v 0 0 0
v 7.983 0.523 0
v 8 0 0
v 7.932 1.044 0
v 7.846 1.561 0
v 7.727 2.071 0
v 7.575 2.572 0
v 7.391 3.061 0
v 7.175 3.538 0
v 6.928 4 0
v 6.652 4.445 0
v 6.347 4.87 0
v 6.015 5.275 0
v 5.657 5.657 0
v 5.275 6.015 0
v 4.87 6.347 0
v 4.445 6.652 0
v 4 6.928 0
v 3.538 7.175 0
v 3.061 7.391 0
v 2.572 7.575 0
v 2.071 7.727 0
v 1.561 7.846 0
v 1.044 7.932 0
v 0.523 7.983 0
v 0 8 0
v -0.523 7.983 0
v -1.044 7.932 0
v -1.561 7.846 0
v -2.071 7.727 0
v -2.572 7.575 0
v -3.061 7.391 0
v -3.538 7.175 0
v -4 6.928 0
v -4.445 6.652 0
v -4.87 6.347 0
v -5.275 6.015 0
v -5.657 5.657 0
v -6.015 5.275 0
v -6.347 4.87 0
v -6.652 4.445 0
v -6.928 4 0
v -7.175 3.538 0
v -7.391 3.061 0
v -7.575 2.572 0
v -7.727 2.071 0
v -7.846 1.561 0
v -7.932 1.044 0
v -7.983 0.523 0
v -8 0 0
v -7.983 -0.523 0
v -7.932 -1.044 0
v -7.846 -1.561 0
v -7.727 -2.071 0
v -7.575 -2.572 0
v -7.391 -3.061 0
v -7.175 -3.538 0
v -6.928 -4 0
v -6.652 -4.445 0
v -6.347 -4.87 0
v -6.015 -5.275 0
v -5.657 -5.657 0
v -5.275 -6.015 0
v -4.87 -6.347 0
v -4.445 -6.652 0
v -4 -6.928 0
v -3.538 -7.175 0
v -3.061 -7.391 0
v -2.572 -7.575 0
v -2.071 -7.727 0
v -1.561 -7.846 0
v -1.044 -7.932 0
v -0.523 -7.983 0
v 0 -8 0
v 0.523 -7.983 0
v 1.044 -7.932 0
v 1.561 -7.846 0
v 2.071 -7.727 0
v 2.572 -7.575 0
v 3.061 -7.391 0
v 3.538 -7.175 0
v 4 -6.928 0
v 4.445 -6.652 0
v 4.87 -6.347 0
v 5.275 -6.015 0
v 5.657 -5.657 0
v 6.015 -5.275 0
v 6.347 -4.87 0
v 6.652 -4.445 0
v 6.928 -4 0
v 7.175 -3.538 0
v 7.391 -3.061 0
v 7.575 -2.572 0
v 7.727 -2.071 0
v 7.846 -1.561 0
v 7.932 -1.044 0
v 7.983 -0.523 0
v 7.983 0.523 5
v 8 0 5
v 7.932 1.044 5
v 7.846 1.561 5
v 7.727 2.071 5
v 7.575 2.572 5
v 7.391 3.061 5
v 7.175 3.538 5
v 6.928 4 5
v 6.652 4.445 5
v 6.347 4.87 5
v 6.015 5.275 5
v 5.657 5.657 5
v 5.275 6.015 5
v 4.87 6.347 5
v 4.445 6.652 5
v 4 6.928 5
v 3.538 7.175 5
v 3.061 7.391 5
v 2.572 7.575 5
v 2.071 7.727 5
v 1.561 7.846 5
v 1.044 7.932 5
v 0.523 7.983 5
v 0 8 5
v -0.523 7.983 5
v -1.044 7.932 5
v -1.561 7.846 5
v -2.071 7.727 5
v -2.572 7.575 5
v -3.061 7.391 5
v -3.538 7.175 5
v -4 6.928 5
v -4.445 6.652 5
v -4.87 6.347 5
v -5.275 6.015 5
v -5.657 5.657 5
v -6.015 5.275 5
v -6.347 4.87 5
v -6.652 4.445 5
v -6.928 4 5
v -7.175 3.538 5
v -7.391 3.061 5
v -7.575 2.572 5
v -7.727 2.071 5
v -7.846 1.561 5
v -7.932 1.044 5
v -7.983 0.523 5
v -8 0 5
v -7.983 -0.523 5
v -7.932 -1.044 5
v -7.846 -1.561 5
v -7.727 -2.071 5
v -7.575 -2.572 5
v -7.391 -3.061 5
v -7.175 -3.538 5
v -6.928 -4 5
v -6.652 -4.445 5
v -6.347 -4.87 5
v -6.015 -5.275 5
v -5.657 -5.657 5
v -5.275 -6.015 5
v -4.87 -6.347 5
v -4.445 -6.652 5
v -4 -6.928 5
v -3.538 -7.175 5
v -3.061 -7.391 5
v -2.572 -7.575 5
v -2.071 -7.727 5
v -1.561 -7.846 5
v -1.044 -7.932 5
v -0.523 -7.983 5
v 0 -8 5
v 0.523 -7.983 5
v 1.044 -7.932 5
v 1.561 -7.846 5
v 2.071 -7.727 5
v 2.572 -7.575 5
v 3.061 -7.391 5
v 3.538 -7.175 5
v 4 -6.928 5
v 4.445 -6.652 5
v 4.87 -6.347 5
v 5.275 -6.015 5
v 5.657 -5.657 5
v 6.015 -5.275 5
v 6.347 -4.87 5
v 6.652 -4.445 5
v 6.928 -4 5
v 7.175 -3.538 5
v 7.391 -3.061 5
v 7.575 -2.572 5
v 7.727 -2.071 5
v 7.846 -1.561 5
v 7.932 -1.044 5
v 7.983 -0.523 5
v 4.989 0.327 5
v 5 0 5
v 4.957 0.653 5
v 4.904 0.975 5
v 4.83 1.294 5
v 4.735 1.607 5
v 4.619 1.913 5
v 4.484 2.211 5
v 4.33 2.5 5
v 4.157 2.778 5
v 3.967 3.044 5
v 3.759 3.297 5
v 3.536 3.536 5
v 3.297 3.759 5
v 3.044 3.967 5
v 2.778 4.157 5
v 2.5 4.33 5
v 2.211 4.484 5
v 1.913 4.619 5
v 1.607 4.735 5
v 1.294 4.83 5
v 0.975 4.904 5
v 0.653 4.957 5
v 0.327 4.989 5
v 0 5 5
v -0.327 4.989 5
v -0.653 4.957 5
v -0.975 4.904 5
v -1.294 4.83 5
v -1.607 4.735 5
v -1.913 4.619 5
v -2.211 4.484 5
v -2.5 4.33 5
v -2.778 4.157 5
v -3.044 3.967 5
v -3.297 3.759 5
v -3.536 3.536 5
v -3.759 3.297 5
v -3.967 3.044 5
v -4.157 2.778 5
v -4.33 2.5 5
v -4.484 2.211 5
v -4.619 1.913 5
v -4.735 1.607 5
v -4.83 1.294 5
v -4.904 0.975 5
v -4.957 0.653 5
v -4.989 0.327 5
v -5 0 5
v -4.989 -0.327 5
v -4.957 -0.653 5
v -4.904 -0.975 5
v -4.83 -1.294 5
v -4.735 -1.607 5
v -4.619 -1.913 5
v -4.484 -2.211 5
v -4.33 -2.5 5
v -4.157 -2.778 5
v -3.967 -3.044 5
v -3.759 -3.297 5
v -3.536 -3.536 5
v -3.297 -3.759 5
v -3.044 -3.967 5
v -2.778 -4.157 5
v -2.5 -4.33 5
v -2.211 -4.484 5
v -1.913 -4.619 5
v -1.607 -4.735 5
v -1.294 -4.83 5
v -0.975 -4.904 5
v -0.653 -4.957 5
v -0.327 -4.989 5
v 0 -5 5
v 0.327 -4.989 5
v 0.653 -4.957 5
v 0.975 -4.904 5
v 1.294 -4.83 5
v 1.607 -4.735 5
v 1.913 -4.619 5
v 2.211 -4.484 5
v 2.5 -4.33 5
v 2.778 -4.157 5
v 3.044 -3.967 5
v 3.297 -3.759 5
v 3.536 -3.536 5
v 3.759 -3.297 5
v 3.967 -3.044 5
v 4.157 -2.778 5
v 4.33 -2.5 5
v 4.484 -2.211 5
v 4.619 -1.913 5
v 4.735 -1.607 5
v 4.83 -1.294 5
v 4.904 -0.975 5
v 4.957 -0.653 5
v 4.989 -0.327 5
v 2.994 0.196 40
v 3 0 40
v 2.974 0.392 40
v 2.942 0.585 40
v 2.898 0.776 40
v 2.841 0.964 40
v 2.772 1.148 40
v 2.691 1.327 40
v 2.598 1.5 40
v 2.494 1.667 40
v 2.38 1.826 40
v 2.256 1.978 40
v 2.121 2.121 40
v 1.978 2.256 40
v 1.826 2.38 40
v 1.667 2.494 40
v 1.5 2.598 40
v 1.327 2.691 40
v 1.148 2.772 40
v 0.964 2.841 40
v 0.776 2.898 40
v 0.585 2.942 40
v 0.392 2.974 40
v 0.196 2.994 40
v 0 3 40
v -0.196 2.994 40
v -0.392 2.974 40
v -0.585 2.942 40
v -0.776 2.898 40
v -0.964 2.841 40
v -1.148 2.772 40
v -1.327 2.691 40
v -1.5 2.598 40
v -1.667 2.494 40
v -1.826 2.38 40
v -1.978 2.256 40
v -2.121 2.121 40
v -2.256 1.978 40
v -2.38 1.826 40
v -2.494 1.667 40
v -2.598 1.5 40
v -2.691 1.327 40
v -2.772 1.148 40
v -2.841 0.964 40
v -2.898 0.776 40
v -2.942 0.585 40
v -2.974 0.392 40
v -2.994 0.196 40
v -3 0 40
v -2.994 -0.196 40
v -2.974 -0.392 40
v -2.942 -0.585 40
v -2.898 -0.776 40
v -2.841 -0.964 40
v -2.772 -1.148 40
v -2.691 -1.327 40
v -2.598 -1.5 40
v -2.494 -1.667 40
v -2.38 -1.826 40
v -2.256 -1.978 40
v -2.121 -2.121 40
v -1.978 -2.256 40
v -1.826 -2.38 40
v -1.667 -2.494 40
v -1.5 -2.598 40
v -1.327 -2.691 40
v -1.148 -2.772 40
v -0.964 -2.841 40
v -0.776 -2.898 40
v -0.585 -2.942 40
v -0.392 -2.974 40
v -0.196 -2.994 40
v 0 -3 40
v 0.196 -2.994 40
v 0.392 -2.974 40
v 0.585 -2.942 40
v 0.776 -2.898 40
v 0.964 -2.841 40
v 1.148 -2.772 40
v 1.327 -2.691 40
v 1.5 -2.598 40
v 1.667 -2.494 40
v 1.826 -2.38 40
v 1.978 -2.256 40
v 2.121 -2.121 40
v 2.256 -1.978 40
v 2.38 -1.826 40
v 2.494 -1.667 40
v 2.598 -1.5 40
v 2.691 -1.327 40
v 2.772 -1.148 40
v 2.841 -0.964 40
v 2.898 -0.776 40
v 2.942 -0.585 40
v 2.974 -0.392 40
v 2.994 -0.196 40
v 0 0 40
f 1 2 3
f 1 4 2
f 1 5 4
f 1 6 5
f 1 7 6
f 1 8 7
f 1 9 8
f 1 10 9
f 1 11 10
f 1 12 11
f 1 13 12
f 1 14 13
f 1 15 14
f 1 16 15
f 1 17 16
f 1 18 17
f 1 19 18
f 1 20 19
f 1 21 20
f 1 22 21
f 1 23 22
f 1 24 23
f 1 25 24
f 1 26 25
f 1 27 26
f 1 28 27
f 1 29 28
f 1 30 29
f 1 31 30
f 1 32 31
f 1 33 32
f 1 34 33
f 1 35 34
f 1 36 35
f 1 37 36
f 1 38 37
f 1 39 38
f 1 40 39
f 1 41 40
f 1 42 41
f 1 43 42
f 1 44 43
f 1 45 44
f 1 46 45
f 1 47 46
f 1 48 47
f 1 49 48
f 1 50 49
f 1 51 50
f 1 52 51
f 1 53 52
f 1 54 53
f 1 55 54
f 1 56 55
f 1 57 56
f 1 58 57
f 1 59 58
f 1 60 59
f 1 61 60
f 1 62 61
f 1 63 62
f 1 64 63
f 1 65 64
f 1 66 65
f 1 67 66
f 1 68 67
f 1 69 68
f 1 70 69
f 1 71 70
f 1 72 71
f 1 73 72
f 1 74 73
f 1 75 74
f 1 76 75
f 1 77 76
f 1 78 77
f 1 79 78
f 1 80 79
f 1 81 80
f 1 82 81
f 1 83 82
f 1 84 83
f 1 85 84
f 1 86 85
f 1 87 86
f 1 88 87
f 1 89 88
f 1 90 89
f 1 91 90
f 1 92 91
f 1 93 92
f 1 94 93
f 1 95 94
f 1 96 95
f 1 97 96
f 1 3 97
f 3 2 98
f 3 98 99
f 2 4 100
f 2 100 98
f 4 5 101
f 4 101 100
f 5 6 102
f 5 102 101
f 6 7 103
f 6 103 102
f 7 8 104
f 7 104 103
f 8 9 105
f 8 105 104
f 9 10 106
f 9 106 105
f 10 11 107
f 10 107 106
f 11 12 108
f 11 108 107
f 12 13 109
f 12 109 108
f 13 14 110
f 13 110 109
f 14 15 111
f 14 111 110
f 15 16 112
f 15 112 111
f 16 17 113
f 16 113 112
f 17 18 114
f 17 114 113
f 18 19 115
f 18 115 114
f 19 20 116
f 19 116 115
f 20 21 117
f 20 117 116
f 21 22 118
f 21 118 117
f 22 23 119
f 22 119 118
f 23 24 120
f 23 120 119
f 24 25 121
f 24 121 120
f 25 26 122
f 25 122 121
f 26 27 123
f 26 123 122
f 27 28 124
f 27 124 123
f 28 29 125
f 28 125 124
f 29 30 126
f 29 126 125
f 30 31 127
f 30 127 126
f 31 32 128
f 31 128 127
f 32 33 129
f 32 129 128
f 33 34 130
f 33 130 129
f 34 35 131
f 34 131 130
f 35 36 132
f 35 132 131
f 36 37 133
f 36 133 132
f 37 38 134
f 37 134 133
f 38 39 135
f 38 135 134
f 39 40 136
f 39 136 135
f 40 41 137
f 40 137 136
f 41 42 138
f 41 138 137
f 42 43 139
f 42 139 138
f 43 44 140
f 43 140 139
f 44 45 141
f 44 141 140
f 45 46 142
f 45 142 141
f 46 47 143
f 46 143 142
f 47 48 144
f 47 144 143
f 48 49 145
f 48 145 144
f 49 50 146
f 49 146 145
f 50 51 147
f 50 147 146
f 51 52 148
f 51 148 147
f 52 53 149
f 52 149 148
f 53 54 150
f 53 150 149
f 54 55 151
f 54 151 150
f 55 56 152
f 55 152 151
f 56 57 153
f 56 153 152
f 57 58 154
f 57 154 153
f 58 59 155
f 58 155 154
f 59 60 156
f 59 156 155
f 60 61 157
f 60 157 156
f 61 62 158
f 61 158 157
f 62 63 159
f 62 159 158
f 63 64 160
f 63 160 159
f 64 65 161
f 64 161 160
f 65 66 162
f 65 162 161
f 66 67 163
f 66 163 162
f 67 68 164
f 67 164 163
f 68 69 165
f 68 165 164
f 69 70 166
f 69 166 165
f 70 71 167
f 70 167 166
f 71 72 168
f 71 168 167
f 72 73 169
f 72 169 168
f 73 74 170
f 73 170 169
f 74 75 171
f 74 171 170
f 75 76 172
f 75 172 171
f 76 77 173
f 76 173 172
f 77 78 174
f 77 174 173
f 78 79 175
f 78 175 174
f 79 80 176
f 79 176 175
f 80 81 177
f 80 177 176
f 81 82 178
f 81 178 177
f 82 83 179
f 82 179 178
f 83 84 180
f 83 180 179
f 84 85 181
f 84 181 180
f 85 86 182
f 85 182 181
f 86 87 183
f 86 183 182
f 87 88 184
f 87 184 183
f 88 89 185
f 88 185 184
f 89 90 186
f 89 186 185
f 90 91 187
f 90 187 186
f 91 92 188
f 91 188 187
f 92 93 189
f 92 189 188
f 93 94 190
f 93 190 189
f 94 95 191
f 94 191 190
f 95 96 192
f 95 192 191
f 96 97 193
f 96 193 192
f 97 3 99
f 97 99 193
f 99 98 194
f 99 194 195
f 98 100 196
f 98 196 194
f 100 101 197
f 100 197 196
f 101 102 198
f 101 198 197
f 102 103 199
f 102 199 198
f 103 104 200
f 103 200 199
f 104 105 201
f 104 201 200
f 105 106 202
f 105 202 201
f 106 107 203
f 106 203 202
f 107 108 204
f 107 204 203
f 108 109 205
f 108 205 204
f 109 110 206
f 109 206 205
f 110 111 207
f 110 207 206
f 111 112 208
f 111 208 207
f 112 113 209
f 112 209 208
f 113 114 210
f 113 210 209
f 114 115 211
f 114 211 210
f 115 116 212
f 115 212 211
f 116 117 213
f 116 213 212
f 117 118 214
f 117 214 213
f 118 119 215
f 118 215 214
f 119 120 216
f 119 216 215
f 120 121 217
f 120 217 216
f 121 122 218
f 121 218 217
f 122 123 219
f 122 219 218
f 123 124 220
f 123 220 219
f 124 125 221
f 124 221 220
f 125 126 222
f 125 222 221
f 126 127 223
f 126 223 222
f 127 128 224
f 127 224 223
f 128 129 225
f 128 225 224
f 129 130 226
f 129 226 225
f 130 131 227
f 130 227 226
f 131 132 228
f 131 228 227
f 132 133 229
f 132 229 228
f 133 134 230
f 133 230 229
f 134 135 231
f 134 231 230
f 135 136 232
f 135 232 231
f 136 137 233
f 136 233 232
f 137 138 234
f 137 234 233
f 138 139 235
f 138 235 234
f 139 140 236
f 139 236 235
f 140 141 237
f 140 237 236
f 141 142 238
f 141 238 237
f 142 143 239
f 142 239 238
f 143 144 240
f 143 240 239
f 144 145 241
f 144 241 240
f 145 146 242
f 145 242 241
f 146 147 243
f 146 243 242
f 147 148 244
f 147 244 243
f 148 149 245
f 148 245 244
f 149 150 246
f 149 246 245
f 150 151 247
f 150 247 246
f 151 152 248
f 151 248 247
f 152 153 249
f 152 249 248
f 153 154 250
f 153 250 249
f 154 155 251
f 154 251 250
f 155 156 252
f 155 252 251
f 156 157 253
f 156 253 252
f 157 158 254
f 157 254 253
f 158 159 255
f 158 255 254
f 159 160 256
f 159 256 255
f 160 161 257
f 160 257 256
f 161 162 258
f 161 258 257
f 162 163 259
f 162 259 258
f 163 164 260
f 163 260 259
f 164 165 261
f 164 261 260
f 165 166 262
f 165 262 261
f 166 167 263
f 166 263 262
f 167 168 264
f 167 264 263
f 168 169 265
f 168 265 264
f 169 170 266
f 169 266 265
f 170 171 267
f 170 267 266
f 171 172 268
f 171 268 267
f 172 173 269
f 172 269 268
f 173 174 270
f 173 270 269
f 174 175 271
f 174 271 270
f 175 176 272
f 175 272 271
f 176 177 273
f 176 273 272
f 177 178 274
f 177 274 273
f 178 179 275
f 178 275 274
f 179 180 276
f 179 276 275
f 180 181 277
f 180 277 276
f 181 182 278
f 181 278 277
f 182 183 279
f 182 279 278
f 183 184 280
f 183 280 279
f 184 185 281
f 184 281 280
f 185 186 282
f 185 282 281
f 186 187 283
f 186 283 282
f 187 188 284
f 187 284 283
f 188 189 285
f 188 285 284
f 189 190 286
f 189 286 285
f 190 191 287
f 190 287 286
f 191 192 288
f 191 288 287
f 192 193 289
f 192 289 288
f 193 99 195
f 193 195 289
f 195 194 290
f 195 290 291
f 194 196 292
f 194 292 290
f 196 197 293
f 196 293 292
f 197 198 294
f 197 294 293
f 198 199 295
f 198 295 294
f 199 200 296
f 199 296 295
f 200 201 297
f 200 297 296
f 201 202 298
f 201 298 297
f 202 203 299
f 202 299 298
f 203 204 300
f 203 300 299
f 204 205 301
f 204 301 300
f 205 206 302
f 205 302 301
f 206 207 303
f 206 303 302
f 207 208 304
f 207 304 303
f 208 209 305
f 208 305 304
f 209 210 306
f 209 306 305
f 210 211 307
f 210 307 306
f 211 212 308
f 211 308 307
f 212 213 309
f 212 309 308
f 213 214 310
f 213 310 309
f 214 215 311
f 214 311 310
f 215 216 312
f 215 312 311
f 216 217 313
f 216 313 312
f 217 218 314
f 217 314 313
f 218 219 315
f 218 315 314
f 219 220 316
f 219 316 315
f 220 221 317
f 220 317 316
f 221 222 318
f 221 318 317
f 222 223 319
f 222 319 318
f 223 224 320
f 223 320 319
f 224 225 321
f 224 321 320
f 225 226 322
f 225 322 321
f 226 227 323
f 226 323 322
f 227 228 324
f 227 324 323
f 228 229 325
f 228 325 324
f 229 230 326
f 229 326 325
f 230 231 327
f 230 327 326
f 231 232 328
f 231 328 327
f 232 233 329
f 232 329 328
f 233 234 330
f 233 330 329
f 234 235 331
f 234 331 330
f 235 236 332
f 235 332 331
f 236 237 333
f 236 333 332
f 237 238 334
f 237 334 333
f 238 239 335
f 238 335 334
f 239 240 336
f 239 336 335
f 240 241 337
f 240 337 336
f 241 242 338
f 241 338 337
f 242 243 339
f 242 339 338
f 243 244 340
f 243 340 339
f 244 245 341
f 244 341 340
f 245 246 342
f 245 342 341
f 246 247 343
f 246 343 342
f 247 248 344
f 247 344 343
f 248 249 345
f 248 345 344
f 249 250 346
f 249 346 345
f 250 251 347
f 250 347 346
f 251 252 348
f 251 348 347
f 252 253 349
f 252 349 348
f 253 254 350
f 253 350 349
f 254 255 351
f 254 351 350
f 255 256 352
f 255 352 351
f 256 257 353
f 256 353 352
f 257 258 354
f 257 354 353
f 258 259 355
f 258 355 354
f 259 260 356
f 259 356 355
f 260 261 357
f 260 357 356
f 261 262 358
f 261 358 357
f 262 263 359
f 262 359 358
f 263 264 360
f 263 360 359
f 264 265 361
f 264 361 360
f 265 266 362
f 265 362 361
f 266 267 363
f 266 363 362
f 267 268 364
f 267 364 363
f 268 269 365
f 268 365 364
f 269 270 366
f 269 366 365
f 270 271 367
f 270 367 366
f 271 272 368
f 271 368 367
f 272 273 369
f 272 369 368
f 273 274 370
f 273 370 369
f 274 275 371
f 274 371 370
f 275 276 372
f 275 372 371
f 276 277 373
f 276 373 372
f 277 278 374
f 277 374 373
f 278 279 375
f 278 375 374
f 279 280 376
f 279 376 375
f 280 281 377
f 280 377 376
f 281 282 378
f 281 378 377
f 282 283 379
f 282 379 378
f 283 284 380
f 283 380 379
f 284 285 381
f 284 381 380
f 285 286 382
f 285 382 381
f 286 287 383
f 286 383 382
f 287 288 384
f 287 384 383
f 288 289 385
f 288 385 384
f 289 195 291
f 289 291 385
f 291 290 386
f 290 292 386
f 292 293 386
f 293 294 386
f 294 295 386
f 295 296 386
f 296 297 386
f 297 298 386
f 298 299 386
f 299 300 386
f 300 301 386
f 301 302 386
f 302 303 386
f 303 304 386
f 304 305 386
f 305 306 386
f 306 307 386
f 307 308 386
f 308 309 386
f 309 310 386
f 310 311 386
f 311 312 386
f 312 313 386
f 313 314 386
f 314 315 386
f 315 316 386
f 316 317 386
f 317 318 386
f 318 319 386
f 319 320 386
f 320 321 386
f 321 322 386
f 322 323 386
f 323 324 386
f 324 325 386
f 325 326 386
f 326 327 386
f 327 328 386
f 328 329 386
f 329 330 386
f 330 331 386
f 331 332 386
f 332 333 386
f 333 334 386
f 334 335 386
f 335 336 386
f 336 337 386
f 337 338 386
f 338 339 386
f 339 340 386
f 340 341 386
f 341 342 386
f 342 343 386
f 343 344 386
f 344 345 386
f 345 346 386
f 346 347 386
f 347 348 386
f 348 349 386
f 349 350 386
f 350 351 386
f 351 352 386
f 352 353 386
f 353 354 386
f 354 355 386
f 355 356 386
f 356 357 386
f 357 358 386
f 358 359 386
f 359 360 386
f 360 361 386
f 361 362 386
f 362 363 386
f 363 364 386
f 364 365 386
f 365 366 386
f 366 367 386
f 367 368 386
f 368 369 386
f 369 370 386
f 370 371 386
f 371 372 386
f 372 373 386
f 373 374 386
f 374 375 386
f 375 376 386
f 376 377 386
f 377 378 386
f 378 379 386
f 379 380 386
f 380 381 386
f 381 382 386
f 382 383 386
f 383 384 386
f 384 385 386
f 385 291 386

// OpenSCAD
// Original MechIntel educational model. CC0-1.0. Units: mm.
// Not a standardized or load-rated component.
$fn=96;
// Section points: [radius, height], mm. Edit to change the profile.
section=[[0, 0], [8, 0], [8, 5], [5, 5], [3, 40], [0, 40]];
rotate_extrude($fn=96) polygon(points=section);
